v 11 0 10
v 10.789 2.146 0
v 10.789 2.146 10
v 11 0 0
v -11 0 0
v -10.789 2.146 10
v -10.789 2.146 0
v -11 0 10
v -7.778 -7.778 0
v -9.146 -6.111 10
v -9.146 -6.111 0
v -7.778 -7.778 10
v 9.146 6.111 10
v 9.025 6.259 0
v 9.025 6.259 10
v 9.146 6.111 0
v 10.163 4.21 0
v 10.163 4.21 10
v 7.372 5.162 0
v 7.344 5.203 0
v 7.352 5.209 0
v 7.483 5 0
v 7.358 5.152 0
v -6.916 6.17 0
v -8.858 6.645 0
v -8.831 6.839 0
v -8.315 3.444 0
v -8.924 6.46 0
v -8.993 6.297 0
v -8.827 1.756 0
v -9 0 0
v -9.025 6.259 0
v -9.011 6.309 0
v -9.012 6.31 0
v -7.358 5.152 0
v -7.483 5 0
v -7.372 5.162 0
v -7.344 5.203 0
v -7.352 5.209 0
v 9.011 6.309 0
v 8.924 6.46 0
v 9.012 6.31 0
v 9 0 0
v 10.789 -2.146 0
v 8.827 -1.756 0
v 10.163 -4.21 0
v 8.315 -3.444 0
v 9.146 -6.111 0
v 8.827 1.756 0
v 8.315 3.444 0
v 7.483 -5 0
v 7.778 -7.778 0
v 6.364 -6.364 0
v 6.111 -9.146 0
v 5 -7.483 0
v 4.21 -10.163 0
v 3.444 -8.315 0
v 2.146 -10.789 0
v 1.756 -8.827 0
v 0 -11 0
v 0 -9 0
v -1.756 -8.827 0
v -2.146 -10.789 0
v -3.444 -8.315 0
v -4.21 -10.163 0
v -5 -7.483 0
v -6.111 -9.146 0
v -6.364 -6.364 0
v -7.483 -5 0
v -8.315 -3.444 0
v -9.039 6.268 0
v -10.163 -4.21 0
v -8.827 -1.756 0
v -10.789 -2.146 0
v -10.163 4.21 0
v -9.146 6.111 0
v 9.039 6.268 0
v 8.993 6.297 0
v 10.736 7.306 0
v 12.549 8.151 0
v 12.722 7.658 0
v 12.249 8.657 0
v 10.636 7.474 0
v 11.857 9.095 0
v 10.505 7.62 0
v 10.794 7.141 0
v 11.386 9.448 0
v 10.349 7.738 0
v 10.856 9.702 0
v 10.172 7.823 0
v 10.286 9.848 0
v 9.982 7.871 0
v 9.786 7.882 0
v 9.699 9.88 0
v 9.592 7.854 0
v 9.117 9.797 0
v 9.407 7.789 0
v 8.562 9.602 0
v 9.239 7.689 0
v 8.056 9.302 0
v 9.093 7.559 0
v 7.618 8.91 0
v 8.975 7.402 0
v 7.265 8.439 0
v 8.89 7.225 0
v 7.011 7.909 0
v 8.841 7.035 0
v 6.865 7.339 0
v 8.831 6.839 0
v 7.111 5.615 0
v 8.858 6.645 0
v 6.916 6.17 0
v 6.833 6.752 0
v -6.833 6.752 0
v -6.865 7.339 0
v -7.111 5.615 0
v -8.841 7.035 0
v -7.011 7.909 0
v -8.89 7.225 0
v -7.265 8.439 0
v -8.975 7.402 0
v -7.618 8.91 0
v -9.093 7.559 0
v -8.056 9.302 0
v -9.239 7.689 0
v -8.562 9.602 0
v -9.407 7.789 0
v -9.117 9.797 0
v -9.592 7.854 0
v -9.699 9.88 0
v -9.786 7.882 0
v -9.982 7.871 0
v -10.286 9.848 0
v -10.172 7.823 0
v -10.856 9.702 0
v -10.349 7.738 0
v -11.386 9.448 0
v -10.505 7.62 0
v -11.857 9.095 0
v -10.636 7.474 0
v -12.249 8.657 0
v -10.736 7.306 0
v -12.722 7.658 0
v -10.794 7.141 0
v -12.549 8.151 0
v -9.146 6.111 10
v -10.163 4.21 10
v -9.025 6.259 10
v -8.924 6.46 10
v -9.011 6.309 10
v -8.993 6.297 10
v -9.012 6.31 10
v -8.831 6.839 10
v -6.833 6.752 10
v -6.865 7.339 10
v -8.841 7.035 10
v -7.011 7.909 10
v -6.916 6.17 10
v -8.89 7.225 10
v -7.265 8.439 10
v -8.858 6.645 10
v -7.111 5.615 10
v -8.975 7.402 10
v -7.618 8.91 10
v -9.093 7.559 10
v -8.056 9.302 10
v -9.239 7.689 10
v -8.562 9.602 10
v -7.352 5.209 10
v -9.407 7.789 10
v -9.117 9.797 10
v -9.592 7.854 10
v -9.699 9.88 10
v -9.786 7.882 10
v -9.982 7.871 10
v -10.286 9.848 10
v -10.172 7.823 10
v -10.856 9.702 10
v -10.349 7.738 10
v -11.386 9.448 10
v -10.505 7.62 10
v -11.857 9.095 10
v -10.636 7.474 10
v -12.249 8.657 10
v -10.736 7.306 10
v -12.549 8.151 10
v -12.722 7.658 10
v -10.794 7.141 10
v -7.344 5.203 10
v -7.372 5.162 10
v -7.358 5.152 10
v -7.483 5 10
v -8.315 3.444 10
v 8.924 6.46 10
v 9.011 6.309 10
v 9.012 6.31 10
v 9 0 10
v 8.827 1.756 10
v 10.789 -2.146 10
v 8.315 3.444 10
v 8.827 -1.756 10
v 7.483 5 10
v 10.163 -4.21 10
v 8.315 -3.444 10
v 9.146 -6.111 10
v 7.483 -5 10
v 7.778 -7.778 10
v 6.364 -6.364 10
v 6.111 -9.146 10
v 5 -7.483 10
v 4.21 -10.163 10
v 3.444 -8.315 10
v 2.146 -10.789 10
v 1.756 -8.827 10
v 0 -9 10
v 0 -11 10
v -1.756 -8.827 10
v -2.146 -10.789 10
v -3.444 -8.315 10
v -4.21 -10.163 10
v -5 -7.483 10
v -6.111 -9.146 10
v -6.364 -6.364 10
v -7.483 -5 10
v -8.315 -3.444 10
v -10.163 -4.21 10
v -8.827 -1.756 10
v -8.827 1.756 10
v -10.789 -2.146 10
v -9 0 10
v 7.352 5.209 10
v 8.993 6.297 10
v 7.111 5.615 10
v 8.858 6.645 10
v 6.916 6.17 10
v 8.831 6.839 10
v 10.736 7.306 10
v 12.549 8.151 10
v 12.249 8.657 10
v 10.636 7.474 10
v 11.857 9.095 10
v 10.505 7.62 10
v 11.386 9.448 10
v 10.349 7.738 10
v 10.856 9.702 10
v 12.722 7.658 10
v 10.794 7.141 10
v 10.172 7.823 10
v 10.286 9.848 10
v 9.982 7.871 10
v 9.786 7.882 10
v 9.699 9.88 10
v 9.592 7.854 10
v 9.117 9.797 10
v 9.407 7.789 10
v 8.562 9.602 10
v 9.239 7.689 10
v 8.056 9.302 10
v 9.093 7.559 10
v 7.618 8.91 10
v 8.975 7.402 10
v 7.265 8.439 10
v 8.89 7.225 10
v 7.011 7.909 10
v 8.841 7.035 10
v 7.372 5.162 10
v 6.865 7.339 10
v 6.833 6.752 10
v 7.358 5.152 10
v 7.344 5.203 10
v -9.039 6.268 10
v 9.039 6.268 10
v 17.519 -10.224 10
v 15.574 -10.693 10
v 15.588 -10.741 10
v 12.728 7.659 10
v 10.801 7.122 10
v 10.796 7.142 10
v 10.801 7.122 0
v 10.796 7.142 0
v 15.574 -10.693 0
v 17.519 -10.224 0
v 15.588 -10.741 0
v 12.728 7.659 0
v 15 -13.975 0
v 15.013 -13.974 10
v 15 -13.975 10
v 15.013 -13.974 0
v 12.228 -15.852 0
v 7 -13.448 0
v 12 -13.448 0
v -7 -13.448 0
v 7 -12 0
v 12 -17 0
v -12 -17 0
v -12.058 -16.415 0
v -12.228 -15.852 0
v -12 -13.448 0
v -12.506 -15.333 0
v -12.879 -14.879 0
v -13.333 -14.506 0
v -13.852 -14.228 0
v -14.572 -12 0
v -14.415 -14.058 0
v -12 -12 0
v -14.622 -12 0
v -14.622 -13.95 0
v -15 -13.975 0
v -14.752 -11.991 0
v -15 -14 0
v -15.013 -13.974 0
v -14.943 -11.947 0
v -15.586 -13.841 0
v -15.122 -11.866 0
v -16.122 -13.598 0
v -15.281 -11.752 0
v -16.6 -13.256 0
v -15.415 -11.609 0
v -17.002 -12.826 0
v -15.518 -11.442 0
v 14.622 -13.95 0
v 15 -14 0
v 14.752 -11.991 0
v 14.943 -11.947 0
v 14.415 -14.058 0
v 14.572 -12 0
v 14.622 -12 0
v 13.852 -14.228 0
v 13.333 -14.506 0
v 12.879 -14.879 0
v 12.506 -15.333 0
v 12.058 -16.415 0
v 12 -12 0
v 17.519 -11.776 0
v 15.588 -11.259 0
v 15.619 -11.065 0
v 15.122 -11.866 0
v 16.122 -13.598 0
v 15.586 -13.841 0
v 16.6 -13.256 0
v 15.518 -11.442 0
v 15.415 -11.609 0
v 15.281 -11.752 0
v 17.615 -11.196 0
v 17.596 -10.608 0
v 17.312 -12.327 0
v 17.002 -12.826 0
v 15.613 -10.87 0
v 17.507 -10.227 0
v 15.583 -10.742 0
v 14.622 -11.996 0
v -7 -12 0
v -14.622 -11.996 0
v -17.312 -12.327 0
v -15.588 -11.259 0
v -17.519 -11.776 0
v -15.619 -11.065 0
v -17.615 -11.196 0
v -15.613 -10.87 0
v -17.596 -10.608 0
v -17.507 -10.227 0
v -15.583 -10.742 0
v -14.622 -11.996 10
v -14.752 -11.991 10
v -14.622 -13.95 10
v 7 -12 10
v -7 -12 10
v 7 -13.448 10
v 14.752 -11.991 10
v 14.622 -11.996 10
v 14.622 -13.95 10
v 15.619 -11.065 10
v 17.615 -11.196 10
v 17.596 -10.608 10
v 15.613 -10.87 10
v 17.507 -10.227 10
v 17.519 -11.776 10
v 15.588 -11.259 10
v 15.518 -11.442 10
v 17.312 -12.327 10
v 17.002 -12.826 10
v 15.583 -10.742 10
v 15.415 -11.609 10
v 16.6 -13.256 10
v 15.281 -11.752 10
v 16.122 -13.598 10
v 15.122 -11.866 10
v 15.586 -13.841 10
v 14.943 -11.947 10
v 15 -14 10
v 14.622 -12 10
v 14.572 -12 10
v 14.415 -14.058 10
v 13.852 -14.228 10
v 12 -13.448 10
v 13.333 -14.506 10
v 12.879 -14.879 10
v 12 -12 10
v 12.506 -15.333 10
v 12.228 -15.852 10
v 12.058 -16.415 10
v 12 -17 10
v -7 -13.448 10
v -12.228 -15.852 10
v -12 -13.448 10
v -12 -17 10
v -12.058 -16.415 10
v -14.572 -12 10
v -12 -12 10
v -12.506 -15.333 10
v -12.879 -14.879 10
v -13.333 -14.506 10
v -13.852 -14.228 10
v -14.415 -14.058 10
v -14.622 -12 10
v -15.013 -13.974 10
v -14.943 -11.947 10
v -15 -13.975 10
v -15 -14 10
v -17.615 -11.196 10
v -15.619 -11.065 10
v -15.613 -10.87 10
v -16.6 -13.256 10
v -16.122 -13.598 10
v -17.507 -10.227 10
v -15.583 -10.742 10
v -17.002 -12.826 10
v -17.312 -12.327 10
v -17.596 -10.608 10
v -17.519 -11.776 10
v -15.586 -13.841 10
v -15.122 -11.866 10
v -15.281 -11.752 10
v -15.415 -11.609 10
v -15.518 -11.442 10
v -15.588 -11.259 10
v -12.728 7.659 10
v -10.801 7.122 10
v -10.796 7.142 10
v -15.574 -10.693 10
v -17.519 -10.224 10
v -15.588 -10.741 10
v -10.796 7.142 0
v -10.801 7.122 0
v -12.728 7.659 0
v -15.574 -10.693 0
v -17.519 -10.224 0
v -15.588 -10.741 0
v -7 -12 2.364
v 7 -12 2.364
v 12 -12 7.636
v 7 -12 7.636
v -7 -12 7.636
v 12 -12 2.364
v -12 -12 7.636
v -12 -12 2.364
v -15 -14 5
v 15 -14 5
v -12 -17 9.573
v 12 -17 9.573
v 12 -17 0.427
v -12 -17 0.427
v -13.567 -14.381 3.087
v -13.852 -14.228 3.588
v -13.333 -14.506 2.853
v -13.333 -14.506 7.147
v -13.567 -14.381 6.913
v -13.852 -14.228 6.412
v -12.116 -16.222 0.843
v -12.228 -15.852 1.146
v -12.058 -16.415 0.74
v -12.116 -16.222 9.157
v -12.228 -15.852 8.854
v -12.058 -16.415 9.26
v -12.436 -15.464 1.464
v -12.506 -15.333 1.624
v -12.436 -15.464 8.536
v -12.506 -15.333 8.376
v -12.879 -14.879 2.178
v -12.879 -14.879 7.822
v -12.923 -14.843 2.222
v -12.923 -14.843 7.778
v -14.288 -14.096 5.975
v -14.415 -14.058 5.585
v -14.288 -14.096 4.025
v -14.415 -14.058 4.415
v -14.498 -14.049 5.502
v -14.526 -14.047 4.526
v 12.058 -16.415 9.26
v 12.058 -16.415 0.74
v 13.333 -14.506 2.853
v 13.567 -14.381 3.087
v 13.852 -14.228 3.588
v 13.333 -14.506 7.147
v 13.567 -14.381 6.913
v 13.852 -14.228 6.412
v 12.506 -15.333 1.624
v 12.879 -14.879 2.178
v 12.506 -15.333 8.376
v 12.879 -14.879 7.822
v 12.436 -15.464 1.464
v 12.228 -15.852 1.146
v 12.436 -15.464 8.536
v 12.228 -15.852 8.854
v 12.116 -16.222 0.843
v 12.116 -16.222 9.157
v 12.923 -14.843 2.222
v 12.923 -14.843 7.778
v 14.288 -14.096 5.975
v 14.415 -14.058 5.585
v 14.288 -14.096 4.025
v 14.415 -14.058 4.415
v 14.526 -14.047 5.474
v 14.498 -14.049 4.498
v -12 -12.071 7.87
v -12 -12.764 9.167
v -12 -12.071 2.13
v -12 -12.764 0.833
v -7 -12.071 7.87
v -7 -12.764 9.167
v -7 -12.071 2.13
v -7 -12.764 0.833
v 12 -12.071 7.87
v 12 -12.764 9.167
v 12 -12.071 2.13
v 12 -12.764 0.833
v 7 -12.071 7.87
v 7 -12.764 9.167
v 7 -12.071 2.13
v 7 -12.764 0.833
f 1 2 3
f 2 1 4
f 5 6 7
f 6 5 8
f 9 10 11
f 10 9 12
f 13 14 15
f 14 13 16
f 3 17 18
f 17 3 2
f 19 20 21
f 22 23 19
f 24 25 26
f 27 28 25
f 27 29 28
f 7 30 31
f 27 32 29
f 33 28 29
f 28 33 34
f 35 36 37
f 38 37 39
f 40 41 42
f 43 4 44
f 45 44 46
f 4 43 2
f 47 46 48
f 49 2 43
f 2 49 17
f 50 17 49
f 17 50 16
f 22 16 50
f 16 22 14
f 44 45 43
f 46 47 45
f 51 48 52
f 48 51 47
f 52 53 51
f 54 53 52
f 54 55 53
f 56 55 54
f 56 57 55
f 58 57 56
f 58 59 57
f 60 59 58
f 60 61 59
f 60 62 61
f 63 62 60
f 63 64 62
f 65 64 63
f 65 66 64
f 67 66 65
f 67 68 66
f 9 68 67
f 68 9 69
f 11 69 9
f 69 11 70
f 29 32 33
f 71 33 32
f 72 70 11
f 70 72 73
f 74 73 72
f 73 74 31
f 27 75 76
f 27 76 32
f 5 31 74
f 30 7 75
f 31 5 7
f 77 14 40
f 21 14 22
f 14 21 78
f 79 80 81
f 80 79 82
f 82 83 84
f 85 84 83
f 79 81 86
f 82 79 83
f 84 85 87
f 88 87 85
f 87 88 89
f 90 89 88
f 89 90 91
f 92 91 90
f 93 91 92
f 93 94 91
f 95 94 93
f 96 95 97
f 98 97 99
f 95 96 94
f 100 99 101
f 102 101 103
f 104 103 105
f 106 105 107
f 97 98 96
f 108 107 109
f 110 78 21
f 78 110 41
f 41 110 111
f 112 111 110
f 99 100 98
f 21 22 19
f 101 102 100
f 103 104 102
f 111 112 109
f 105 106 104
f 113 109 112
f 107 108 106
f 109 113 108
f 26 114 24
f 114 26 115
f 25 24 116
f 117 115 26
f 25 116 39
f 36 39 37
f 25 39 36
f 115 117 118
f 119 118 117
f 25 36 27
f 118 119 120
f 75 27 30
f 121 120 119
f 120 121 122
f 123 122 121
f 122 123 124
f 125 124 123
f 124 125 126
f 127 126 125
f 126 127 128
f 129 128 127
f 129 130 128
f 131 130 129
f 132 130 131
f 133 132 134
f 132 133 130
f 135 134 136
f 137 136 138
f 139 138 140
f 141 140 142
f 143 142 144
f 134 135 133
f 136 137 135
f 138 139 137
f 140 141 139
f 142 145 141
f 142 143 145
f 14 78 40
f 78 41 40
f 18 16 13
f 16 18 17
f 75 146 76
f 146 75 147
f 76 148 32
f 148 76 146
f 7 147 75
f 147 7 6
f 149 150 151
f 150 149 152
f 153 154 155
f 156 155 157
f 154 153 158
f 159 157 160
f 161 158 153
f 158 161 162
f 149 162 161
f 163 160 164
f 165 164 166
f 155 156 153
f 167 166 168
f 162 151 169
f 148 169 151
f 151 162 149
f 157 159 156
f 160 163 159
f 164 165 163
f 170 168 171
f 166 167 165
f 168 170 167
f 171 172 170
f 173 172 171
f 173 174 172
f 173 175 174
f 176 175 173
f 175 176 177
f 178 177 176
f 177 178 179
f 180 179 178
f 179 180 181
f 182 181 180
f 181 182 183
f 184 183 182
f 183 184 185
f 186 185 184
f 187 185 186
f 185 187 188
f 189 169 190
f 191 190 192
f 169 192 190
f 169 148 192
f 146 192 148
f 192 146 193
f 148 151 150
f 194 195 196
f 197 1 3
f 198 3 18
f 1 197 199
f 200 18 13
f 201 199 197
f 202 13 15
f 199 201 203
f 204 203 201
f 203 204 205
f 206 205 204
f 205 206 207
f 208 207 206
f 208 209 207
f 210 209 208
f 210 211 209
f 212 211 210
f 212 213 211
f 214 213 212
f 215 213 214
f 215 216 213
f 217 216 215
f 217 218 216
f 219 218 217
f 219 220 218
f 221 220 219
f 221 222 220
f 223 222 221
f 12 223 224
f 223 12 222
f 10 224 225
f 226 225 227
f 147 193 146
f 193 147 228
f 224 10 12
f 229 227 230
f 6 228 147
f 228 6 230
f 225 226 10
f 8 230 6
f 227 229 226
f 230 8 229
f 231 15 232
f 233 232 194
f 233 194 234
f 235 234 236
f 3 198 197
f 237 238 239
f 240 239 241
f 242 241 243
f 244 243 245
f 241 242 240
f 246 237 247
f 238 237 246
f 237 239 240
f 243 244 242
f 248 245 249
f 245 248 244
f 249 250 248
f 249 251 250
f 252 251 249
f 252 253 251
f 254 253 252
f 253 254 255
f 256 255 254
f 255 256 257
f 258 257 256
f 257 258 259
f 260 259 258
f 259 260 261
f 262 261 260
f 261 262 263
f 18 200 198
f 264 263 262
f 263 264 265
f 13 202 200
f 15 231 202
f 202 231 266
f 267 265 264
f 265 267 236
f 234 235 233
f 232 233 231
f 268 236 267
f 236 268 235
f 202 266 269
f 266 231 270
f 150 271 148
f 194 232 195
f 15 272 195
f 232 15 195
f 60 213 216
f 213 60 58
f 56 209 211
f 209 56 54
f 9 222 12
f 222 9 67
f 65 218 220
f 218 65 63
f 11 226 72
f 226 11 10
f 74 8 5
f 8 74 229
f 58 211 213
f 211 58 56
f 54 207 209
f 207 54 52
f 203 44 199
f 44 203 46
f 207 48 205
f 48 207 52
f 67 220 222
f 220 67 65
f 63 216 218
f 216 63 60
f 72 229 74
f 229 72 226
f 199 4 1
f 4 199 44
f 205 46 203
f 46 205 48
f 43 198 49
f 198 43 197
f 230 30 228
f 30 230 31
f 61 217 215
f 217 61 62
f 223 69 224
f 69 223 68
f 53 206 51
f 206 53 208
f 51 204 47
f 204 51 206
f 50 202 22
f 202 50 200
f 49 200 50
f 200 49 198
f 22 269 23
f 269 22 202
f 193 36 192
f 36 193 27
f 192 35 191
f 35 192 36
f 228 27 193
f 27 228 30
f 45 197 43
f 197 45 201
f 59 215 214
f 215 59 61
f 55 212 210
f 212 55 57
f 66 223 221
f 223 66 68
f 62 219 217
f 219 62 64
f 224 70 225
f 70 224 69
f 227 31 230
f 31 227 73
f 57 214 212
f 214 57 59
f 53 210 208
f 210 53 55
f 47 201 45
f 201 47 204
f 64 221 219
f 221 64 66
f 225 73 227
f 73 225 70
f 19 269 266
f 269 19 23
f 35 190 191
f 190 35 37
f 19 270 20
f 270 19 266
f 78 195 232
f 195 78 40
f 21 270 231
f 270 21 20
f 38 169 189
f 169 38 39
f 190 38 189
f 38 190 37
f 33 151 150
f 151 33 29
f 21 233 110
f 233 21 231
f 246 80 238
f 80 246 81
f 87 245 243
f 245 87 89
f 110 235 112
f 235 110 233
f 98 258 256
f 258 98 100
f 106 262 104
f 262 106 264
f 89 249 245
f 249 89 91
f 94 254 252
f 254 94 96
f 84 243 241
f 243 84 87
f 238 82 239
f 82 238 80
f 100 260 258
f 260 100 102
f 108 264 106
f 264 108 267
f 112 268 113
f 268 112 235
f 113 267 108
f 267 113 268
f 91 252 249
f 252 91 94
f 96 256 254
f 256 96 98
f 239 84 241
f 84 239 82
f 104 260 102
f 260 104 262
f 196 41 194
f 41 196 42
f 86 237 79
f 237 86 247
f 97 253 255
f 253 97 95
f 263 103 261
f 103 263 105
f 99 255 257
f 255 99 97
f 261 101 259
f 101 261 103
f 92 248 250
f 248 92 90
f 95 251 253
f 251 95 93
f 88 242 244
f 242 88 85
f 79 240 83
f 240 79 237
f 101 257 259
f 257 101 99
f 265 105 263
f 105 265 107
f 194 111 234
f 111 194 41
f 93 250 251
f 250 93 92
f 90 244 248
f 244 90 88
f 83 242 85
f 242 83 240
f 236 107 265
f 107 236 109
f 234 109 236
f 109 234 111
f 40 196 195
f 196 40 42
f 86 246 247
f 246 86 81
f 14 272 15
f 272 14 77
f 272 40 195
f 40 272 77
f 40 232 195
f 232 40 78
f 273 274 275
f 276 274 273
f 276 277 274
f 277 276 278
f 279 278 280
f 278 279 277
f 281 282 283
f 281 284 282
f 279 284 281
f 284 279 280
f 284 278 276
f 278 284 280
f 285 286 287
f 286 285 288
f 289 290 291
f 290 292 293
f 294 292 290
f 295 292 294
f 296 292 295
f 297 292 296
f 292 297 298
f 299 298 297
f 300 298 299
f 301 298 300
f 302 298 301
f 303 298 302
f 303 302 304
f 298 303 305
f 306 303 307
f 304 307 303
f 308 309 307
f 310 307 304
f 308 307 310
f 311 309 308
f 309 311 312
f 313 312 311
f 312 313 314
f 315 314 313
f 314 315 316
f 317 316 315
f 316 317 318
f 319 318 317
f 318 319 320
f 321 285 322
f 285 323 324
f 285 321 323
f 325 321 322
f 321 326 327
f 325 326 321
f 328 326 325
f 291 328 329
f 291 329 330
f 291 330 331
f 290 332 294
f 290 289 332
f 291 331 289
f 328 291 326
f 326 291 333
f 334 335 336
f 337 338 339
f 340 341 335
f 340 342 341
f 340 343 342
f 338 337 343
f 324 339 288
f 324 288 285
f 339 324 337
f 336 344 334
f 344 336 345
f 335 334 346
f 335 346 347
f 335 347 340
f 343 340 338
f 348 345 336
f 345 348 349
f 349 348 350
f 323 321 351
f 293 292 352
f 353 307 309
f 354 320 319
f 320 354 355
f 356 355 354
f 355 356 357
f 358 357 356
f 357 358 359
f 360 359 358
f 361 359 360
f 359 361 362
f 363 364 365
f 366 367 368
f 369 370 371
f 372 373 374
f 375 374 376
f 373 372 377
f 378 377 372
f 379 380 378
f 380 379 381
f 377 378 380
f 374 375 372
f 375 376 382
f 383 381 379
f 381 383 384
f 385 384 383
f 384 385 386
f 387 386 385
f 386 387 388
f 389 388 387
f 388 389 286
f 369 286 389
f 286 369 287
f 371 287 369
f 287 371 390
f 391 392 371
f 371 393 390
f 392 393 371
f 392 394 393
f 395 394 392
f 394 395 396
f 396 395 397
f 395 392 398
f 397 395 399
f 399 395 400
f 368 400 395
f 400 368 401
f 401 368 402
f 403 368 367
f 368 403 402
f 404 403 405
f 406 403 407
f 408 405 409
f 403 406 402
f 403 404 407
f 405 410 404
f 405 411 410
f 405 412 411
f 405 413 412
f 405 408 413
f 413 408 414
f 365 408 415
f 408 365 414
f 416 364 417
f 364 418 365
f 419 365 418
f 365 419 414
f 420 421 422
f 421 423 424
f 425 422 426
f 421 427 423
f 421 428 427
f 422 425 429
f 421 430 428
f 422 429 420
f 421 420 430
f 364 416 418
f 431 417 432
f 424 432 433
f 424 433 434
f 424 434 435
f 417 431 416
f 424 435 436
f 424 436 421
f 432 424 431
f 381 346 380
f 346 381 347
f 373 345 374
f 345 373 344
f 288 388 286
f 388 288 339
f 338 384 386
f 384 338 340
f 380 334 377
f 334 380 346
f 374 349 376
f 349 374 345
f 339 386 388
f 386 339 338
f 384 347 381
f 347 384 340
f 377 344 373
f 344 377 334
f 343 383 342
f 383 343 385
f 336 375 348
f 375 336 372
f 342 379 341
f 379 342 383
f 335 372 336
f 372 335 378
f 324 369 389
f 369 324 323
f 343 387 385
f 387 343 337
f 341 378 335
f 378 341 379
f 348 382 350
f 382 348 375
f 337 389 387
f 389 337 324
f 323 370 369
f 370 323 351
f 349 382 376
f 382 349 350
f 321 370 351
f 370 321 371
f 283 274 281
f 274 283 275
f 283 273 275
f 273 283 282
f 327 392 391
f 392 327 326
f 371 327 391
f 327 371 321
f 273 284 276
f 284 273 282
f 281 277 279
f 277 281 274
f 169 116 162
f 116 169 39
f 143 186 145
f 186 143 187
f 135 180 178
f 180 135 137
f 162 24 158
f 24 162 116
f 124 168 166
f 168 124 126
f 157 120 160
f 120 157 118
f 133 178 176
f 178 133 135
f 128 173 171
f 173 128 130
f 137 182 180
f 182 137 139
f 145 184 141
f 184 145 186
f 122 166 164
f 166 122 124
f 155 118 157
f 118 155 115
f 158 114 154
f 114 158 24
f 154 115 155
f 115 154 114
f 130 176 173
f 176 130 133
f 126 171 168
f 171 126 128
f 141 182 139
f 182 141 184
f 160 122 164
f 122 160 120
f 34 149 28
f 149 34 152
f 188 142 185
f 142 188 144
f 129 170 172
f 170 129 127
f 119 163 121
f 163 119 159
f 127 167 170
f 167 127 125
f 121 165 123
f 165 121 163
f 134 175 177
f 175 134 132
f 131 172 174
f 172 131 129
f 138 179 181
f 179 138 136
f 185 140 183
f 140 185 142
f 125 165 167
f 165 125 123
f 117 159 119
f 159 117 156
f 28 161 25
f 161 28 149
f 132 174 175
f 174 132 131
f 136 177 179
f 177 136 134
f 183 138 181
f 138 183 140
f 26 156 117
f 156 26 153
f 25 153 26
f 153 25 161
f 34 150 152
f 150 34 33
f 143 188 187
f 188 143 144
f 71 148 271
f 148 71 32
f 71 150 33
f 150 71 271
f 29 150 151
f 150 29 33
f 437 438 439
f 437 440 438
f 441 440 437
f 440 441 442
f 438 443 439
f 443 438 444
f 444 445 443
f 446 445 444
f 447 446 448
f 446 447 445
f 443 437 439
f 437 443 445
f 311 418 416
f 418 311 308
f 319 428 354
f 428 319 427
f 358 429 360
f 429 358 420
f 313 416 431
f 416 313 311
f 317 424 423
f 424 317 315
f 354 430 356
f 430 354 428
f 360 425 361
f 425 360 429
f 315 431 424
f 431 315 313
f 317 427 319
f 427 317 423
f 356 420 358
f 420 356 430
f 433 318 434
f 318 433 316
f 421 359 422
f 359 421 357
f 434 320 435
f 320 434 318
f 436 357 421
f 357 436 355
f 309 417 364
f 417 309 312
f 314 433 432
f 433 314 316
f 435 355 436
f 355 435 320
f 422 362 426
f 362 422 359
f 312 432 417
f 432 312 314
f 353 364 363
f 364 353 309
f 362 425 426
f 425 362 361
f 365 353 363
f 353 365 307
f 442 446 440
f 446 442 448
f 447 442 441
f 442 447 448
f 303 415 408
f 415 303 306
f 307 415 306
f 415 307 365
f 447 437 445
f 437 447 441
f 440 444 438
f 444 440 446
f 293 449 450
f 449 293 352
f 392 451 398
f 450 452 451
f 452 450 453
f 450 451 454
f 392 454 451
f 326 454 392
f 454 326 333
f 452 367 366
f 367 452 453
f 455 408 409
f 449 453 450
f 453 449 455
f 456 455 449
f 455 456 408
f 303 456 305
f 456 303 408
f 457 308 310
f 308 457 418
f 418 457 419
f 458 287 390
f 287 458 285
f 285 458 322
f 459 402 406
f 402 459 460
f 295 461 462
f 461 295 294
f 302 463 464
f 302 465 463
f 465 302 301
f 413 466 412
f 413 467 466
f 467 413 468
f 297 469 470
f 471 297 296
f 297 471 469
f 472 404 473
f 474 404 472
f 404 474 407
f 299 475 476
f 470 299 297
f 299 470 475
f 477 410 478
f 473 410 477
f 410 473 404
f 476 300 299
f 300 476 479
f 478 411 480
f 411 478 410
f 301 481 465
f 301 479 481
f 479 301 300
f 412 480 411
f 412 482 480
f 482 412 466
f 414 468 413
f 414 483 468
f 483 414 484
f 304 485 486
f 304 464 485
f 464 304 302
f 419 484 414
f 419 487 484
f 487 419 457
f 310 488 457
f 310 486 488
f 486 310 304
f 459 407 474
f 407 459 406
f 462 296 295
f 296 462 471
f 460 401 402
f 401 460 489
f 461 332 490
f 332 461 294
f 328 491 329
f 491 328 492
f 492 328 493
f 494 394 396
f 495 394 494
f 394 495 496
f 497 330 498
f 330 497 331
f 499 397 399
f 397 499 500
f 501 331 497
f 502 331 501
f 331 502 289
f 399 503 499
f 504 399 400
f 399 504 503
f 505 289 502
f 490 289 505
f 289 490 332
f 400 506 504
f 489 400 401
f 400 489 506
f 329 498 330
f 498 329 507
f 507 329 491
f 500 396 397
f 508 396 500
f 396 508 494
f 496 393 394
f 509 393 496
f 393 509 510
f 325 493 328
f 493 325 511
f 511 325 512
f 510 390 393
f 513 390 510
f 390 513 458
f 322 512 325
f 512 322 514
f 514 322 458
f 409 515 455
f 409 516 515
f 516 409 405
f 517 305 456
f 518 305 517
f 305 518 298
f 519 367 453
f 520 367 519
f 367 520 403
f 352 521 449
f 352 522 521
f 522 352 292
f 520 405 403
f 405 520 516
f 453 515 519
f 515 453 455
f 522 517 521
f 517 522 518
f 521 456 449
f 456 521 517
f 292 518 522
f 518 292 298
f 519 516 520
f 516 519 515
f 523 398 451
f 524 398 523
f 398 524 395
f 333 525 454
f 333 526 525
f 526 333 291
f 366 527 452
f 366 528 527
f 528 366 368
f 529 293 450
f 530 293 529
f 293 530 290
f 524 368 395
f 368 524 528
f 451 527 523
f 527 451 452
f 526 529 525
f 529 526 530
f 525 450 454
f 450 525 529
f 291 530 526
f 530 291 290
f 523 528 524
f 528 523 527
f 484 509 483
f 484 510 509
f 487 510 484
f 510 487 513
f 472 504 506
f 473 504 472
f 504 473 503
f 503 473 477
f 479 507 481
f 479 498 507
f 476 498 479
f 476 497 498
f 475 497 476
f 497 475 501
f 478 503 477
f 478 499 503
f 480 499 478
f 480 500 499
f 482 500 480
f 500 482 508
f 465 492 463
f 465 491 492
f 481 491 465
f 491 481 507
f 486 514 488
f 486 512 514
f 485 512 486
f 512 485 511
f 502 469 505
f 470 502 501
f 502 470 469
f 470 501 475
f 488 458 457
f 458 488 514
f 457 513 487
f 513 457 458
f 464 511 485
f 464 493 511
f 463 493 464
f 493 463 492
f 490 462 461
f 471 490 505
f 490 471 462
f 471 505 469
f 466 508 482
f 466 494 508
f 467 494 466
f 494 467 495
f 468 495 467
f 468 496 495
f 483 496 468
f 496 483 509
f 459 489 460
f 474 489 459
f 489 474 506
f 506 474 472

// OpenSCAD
/*

A strong clip for attaching something to a cylindrical rod, designed to be good for diameters of abour 10mm.

This uses flex in the plastic, and has been designed to avoid, as far as possible, concentrating stress anywhere that is likely to make it crack.  I intend to use it for clipping stuff together on my bike to stop it rattling, so it should be able to handle moderately large shock loads in X.

(c) Richard Bowman 2016, released under CERN open hardware license.  
If you want to use it in something closed-source that's probably fine, but please contact me first (my.name@cantab.net).

*/

use <utilities.scad>;

d=0.05;
$fn=32;

module arc(r,angle, h=1, t=1, endcap="none"){
    a=angle/2;
    union(){
        intersection(){
            difference(){
                cylinder(r=r+t/2, h=h);
                cylinder(r=r-t/2, h=4*h, center=true);
            }
            linear_extrude(4*h, center=true){
                polygon([[0,0],
                         [sin(180-a), cos(180-a)],
                         [sin(180-a/2), cos(180-a/2)],
                         [0,-1],
                         [-sin(180-a/2), cos(180-a/2)],
                         [-sin(180-a), cos(180-a)],
                         [0,0]]*2*r);
            }
        }
        reflect([1,0,0]) rotate(a-90) translate([r,0,0]){
            if(endcap=="d") translate([-t/2,0,0]) cube([t,d,h]);
            if(endcap=="round") cylinder(d=t,h=h);
        }
    }
}

module cylinder_clip_strong(r, t, angle=225, rc=2, support_angle=0, h=10, back_to_tube=6){
    a = 180-angle/2;
    back = -r-back_to_tube;
    front_vertex = [sin(a),cos(a),0]*(r+t/2+rc); //centre of curved ends of the clip
    support_l = (front_vertex[1]-back-t/2-rc)/cos(support_angle); //length of straight part at the edge
    back_vertex = [front_vertex[0]+support_l*sin(support_angle), back+t/2+rc,0]; //centre of curve that joins clip to back
    union(){
        arc(r+t/2, angle, h=h, t=t,endcap="d"); //this grips the rod
        //this part joins the front of the clip to the back of the mount
        reflect([1,0,0]){
            translate(front_vertex) 
                rotate(-135-a/2+support_angle/2) arc(rc, 270-a-support_angle, h=h, t=t, endcap="d");
            translate(back_vertex) rotate(support_angle) translate([rc-t/2,0,0]) cube([t,support_l,h]);
            translate(back_vertex) rotate(45+support_angle/2) arc(rc, 90+support_angle, h=h,t=t,endcap="d");
        }
        translate([-back_vertex[0],back,0]) cube([back_vertex[0]*2,t,h]);
    }
}

//cylinder_clip_strong(10/2,1.5, back_to_tube=4);
module lock_to_rack_bottom(){
    difference(){
        h=10;
        rack_r=10/2;
        lock_r=18/2;
        back_w=30;
        union(){
            cylinder_clip_strong(lock_r,2,250, h=h, support_angle=15, back_to_tube=5);
            translate([-back_w/2,-lock_r-5-3,0]) cube([back_w,3+d,h]);
        }
        translate([0,-lock_r-5-rack_r,h/2]) rotate([0,90,0]) cylinder(r=rack_r,h=999,center=true);
        reflect([1,0,0]) translate([-back_w/2,-lock_r-5-3,0]) cylinder(r=3,h=999,center=true);
        reflect([1,0,0]) translate([-back_w/2+3,-lock_r-5-rack_r,h/2]) rotate([0,90,0]) arc(rack_r+3.5, 360, t=2, h=5);
        
    }
}
module lock_stopper(r=18/2,h=10,t=2){
    difference(){
        hull(){
            cylinder(r=r+t, h=h, center=true);
            translate([r+2,0,0]) cube([h,2*sqrt(r*r-(r-3)*(r-3))+8,h],center=true);
        }
        translate([0,0,-h/2]) chamfered_hole(r=r,h=h);
        translate([r+2,0,0]) pinch_y(3,gap=[20,4,20],t=sqrt(r*r-(r-3)*(r-3))-2, nut_l=999);
        //cylinder(r=999,h=999,$fn=8);
    }
}

//lock_stopper();
lock_to_rack_bottom();          
